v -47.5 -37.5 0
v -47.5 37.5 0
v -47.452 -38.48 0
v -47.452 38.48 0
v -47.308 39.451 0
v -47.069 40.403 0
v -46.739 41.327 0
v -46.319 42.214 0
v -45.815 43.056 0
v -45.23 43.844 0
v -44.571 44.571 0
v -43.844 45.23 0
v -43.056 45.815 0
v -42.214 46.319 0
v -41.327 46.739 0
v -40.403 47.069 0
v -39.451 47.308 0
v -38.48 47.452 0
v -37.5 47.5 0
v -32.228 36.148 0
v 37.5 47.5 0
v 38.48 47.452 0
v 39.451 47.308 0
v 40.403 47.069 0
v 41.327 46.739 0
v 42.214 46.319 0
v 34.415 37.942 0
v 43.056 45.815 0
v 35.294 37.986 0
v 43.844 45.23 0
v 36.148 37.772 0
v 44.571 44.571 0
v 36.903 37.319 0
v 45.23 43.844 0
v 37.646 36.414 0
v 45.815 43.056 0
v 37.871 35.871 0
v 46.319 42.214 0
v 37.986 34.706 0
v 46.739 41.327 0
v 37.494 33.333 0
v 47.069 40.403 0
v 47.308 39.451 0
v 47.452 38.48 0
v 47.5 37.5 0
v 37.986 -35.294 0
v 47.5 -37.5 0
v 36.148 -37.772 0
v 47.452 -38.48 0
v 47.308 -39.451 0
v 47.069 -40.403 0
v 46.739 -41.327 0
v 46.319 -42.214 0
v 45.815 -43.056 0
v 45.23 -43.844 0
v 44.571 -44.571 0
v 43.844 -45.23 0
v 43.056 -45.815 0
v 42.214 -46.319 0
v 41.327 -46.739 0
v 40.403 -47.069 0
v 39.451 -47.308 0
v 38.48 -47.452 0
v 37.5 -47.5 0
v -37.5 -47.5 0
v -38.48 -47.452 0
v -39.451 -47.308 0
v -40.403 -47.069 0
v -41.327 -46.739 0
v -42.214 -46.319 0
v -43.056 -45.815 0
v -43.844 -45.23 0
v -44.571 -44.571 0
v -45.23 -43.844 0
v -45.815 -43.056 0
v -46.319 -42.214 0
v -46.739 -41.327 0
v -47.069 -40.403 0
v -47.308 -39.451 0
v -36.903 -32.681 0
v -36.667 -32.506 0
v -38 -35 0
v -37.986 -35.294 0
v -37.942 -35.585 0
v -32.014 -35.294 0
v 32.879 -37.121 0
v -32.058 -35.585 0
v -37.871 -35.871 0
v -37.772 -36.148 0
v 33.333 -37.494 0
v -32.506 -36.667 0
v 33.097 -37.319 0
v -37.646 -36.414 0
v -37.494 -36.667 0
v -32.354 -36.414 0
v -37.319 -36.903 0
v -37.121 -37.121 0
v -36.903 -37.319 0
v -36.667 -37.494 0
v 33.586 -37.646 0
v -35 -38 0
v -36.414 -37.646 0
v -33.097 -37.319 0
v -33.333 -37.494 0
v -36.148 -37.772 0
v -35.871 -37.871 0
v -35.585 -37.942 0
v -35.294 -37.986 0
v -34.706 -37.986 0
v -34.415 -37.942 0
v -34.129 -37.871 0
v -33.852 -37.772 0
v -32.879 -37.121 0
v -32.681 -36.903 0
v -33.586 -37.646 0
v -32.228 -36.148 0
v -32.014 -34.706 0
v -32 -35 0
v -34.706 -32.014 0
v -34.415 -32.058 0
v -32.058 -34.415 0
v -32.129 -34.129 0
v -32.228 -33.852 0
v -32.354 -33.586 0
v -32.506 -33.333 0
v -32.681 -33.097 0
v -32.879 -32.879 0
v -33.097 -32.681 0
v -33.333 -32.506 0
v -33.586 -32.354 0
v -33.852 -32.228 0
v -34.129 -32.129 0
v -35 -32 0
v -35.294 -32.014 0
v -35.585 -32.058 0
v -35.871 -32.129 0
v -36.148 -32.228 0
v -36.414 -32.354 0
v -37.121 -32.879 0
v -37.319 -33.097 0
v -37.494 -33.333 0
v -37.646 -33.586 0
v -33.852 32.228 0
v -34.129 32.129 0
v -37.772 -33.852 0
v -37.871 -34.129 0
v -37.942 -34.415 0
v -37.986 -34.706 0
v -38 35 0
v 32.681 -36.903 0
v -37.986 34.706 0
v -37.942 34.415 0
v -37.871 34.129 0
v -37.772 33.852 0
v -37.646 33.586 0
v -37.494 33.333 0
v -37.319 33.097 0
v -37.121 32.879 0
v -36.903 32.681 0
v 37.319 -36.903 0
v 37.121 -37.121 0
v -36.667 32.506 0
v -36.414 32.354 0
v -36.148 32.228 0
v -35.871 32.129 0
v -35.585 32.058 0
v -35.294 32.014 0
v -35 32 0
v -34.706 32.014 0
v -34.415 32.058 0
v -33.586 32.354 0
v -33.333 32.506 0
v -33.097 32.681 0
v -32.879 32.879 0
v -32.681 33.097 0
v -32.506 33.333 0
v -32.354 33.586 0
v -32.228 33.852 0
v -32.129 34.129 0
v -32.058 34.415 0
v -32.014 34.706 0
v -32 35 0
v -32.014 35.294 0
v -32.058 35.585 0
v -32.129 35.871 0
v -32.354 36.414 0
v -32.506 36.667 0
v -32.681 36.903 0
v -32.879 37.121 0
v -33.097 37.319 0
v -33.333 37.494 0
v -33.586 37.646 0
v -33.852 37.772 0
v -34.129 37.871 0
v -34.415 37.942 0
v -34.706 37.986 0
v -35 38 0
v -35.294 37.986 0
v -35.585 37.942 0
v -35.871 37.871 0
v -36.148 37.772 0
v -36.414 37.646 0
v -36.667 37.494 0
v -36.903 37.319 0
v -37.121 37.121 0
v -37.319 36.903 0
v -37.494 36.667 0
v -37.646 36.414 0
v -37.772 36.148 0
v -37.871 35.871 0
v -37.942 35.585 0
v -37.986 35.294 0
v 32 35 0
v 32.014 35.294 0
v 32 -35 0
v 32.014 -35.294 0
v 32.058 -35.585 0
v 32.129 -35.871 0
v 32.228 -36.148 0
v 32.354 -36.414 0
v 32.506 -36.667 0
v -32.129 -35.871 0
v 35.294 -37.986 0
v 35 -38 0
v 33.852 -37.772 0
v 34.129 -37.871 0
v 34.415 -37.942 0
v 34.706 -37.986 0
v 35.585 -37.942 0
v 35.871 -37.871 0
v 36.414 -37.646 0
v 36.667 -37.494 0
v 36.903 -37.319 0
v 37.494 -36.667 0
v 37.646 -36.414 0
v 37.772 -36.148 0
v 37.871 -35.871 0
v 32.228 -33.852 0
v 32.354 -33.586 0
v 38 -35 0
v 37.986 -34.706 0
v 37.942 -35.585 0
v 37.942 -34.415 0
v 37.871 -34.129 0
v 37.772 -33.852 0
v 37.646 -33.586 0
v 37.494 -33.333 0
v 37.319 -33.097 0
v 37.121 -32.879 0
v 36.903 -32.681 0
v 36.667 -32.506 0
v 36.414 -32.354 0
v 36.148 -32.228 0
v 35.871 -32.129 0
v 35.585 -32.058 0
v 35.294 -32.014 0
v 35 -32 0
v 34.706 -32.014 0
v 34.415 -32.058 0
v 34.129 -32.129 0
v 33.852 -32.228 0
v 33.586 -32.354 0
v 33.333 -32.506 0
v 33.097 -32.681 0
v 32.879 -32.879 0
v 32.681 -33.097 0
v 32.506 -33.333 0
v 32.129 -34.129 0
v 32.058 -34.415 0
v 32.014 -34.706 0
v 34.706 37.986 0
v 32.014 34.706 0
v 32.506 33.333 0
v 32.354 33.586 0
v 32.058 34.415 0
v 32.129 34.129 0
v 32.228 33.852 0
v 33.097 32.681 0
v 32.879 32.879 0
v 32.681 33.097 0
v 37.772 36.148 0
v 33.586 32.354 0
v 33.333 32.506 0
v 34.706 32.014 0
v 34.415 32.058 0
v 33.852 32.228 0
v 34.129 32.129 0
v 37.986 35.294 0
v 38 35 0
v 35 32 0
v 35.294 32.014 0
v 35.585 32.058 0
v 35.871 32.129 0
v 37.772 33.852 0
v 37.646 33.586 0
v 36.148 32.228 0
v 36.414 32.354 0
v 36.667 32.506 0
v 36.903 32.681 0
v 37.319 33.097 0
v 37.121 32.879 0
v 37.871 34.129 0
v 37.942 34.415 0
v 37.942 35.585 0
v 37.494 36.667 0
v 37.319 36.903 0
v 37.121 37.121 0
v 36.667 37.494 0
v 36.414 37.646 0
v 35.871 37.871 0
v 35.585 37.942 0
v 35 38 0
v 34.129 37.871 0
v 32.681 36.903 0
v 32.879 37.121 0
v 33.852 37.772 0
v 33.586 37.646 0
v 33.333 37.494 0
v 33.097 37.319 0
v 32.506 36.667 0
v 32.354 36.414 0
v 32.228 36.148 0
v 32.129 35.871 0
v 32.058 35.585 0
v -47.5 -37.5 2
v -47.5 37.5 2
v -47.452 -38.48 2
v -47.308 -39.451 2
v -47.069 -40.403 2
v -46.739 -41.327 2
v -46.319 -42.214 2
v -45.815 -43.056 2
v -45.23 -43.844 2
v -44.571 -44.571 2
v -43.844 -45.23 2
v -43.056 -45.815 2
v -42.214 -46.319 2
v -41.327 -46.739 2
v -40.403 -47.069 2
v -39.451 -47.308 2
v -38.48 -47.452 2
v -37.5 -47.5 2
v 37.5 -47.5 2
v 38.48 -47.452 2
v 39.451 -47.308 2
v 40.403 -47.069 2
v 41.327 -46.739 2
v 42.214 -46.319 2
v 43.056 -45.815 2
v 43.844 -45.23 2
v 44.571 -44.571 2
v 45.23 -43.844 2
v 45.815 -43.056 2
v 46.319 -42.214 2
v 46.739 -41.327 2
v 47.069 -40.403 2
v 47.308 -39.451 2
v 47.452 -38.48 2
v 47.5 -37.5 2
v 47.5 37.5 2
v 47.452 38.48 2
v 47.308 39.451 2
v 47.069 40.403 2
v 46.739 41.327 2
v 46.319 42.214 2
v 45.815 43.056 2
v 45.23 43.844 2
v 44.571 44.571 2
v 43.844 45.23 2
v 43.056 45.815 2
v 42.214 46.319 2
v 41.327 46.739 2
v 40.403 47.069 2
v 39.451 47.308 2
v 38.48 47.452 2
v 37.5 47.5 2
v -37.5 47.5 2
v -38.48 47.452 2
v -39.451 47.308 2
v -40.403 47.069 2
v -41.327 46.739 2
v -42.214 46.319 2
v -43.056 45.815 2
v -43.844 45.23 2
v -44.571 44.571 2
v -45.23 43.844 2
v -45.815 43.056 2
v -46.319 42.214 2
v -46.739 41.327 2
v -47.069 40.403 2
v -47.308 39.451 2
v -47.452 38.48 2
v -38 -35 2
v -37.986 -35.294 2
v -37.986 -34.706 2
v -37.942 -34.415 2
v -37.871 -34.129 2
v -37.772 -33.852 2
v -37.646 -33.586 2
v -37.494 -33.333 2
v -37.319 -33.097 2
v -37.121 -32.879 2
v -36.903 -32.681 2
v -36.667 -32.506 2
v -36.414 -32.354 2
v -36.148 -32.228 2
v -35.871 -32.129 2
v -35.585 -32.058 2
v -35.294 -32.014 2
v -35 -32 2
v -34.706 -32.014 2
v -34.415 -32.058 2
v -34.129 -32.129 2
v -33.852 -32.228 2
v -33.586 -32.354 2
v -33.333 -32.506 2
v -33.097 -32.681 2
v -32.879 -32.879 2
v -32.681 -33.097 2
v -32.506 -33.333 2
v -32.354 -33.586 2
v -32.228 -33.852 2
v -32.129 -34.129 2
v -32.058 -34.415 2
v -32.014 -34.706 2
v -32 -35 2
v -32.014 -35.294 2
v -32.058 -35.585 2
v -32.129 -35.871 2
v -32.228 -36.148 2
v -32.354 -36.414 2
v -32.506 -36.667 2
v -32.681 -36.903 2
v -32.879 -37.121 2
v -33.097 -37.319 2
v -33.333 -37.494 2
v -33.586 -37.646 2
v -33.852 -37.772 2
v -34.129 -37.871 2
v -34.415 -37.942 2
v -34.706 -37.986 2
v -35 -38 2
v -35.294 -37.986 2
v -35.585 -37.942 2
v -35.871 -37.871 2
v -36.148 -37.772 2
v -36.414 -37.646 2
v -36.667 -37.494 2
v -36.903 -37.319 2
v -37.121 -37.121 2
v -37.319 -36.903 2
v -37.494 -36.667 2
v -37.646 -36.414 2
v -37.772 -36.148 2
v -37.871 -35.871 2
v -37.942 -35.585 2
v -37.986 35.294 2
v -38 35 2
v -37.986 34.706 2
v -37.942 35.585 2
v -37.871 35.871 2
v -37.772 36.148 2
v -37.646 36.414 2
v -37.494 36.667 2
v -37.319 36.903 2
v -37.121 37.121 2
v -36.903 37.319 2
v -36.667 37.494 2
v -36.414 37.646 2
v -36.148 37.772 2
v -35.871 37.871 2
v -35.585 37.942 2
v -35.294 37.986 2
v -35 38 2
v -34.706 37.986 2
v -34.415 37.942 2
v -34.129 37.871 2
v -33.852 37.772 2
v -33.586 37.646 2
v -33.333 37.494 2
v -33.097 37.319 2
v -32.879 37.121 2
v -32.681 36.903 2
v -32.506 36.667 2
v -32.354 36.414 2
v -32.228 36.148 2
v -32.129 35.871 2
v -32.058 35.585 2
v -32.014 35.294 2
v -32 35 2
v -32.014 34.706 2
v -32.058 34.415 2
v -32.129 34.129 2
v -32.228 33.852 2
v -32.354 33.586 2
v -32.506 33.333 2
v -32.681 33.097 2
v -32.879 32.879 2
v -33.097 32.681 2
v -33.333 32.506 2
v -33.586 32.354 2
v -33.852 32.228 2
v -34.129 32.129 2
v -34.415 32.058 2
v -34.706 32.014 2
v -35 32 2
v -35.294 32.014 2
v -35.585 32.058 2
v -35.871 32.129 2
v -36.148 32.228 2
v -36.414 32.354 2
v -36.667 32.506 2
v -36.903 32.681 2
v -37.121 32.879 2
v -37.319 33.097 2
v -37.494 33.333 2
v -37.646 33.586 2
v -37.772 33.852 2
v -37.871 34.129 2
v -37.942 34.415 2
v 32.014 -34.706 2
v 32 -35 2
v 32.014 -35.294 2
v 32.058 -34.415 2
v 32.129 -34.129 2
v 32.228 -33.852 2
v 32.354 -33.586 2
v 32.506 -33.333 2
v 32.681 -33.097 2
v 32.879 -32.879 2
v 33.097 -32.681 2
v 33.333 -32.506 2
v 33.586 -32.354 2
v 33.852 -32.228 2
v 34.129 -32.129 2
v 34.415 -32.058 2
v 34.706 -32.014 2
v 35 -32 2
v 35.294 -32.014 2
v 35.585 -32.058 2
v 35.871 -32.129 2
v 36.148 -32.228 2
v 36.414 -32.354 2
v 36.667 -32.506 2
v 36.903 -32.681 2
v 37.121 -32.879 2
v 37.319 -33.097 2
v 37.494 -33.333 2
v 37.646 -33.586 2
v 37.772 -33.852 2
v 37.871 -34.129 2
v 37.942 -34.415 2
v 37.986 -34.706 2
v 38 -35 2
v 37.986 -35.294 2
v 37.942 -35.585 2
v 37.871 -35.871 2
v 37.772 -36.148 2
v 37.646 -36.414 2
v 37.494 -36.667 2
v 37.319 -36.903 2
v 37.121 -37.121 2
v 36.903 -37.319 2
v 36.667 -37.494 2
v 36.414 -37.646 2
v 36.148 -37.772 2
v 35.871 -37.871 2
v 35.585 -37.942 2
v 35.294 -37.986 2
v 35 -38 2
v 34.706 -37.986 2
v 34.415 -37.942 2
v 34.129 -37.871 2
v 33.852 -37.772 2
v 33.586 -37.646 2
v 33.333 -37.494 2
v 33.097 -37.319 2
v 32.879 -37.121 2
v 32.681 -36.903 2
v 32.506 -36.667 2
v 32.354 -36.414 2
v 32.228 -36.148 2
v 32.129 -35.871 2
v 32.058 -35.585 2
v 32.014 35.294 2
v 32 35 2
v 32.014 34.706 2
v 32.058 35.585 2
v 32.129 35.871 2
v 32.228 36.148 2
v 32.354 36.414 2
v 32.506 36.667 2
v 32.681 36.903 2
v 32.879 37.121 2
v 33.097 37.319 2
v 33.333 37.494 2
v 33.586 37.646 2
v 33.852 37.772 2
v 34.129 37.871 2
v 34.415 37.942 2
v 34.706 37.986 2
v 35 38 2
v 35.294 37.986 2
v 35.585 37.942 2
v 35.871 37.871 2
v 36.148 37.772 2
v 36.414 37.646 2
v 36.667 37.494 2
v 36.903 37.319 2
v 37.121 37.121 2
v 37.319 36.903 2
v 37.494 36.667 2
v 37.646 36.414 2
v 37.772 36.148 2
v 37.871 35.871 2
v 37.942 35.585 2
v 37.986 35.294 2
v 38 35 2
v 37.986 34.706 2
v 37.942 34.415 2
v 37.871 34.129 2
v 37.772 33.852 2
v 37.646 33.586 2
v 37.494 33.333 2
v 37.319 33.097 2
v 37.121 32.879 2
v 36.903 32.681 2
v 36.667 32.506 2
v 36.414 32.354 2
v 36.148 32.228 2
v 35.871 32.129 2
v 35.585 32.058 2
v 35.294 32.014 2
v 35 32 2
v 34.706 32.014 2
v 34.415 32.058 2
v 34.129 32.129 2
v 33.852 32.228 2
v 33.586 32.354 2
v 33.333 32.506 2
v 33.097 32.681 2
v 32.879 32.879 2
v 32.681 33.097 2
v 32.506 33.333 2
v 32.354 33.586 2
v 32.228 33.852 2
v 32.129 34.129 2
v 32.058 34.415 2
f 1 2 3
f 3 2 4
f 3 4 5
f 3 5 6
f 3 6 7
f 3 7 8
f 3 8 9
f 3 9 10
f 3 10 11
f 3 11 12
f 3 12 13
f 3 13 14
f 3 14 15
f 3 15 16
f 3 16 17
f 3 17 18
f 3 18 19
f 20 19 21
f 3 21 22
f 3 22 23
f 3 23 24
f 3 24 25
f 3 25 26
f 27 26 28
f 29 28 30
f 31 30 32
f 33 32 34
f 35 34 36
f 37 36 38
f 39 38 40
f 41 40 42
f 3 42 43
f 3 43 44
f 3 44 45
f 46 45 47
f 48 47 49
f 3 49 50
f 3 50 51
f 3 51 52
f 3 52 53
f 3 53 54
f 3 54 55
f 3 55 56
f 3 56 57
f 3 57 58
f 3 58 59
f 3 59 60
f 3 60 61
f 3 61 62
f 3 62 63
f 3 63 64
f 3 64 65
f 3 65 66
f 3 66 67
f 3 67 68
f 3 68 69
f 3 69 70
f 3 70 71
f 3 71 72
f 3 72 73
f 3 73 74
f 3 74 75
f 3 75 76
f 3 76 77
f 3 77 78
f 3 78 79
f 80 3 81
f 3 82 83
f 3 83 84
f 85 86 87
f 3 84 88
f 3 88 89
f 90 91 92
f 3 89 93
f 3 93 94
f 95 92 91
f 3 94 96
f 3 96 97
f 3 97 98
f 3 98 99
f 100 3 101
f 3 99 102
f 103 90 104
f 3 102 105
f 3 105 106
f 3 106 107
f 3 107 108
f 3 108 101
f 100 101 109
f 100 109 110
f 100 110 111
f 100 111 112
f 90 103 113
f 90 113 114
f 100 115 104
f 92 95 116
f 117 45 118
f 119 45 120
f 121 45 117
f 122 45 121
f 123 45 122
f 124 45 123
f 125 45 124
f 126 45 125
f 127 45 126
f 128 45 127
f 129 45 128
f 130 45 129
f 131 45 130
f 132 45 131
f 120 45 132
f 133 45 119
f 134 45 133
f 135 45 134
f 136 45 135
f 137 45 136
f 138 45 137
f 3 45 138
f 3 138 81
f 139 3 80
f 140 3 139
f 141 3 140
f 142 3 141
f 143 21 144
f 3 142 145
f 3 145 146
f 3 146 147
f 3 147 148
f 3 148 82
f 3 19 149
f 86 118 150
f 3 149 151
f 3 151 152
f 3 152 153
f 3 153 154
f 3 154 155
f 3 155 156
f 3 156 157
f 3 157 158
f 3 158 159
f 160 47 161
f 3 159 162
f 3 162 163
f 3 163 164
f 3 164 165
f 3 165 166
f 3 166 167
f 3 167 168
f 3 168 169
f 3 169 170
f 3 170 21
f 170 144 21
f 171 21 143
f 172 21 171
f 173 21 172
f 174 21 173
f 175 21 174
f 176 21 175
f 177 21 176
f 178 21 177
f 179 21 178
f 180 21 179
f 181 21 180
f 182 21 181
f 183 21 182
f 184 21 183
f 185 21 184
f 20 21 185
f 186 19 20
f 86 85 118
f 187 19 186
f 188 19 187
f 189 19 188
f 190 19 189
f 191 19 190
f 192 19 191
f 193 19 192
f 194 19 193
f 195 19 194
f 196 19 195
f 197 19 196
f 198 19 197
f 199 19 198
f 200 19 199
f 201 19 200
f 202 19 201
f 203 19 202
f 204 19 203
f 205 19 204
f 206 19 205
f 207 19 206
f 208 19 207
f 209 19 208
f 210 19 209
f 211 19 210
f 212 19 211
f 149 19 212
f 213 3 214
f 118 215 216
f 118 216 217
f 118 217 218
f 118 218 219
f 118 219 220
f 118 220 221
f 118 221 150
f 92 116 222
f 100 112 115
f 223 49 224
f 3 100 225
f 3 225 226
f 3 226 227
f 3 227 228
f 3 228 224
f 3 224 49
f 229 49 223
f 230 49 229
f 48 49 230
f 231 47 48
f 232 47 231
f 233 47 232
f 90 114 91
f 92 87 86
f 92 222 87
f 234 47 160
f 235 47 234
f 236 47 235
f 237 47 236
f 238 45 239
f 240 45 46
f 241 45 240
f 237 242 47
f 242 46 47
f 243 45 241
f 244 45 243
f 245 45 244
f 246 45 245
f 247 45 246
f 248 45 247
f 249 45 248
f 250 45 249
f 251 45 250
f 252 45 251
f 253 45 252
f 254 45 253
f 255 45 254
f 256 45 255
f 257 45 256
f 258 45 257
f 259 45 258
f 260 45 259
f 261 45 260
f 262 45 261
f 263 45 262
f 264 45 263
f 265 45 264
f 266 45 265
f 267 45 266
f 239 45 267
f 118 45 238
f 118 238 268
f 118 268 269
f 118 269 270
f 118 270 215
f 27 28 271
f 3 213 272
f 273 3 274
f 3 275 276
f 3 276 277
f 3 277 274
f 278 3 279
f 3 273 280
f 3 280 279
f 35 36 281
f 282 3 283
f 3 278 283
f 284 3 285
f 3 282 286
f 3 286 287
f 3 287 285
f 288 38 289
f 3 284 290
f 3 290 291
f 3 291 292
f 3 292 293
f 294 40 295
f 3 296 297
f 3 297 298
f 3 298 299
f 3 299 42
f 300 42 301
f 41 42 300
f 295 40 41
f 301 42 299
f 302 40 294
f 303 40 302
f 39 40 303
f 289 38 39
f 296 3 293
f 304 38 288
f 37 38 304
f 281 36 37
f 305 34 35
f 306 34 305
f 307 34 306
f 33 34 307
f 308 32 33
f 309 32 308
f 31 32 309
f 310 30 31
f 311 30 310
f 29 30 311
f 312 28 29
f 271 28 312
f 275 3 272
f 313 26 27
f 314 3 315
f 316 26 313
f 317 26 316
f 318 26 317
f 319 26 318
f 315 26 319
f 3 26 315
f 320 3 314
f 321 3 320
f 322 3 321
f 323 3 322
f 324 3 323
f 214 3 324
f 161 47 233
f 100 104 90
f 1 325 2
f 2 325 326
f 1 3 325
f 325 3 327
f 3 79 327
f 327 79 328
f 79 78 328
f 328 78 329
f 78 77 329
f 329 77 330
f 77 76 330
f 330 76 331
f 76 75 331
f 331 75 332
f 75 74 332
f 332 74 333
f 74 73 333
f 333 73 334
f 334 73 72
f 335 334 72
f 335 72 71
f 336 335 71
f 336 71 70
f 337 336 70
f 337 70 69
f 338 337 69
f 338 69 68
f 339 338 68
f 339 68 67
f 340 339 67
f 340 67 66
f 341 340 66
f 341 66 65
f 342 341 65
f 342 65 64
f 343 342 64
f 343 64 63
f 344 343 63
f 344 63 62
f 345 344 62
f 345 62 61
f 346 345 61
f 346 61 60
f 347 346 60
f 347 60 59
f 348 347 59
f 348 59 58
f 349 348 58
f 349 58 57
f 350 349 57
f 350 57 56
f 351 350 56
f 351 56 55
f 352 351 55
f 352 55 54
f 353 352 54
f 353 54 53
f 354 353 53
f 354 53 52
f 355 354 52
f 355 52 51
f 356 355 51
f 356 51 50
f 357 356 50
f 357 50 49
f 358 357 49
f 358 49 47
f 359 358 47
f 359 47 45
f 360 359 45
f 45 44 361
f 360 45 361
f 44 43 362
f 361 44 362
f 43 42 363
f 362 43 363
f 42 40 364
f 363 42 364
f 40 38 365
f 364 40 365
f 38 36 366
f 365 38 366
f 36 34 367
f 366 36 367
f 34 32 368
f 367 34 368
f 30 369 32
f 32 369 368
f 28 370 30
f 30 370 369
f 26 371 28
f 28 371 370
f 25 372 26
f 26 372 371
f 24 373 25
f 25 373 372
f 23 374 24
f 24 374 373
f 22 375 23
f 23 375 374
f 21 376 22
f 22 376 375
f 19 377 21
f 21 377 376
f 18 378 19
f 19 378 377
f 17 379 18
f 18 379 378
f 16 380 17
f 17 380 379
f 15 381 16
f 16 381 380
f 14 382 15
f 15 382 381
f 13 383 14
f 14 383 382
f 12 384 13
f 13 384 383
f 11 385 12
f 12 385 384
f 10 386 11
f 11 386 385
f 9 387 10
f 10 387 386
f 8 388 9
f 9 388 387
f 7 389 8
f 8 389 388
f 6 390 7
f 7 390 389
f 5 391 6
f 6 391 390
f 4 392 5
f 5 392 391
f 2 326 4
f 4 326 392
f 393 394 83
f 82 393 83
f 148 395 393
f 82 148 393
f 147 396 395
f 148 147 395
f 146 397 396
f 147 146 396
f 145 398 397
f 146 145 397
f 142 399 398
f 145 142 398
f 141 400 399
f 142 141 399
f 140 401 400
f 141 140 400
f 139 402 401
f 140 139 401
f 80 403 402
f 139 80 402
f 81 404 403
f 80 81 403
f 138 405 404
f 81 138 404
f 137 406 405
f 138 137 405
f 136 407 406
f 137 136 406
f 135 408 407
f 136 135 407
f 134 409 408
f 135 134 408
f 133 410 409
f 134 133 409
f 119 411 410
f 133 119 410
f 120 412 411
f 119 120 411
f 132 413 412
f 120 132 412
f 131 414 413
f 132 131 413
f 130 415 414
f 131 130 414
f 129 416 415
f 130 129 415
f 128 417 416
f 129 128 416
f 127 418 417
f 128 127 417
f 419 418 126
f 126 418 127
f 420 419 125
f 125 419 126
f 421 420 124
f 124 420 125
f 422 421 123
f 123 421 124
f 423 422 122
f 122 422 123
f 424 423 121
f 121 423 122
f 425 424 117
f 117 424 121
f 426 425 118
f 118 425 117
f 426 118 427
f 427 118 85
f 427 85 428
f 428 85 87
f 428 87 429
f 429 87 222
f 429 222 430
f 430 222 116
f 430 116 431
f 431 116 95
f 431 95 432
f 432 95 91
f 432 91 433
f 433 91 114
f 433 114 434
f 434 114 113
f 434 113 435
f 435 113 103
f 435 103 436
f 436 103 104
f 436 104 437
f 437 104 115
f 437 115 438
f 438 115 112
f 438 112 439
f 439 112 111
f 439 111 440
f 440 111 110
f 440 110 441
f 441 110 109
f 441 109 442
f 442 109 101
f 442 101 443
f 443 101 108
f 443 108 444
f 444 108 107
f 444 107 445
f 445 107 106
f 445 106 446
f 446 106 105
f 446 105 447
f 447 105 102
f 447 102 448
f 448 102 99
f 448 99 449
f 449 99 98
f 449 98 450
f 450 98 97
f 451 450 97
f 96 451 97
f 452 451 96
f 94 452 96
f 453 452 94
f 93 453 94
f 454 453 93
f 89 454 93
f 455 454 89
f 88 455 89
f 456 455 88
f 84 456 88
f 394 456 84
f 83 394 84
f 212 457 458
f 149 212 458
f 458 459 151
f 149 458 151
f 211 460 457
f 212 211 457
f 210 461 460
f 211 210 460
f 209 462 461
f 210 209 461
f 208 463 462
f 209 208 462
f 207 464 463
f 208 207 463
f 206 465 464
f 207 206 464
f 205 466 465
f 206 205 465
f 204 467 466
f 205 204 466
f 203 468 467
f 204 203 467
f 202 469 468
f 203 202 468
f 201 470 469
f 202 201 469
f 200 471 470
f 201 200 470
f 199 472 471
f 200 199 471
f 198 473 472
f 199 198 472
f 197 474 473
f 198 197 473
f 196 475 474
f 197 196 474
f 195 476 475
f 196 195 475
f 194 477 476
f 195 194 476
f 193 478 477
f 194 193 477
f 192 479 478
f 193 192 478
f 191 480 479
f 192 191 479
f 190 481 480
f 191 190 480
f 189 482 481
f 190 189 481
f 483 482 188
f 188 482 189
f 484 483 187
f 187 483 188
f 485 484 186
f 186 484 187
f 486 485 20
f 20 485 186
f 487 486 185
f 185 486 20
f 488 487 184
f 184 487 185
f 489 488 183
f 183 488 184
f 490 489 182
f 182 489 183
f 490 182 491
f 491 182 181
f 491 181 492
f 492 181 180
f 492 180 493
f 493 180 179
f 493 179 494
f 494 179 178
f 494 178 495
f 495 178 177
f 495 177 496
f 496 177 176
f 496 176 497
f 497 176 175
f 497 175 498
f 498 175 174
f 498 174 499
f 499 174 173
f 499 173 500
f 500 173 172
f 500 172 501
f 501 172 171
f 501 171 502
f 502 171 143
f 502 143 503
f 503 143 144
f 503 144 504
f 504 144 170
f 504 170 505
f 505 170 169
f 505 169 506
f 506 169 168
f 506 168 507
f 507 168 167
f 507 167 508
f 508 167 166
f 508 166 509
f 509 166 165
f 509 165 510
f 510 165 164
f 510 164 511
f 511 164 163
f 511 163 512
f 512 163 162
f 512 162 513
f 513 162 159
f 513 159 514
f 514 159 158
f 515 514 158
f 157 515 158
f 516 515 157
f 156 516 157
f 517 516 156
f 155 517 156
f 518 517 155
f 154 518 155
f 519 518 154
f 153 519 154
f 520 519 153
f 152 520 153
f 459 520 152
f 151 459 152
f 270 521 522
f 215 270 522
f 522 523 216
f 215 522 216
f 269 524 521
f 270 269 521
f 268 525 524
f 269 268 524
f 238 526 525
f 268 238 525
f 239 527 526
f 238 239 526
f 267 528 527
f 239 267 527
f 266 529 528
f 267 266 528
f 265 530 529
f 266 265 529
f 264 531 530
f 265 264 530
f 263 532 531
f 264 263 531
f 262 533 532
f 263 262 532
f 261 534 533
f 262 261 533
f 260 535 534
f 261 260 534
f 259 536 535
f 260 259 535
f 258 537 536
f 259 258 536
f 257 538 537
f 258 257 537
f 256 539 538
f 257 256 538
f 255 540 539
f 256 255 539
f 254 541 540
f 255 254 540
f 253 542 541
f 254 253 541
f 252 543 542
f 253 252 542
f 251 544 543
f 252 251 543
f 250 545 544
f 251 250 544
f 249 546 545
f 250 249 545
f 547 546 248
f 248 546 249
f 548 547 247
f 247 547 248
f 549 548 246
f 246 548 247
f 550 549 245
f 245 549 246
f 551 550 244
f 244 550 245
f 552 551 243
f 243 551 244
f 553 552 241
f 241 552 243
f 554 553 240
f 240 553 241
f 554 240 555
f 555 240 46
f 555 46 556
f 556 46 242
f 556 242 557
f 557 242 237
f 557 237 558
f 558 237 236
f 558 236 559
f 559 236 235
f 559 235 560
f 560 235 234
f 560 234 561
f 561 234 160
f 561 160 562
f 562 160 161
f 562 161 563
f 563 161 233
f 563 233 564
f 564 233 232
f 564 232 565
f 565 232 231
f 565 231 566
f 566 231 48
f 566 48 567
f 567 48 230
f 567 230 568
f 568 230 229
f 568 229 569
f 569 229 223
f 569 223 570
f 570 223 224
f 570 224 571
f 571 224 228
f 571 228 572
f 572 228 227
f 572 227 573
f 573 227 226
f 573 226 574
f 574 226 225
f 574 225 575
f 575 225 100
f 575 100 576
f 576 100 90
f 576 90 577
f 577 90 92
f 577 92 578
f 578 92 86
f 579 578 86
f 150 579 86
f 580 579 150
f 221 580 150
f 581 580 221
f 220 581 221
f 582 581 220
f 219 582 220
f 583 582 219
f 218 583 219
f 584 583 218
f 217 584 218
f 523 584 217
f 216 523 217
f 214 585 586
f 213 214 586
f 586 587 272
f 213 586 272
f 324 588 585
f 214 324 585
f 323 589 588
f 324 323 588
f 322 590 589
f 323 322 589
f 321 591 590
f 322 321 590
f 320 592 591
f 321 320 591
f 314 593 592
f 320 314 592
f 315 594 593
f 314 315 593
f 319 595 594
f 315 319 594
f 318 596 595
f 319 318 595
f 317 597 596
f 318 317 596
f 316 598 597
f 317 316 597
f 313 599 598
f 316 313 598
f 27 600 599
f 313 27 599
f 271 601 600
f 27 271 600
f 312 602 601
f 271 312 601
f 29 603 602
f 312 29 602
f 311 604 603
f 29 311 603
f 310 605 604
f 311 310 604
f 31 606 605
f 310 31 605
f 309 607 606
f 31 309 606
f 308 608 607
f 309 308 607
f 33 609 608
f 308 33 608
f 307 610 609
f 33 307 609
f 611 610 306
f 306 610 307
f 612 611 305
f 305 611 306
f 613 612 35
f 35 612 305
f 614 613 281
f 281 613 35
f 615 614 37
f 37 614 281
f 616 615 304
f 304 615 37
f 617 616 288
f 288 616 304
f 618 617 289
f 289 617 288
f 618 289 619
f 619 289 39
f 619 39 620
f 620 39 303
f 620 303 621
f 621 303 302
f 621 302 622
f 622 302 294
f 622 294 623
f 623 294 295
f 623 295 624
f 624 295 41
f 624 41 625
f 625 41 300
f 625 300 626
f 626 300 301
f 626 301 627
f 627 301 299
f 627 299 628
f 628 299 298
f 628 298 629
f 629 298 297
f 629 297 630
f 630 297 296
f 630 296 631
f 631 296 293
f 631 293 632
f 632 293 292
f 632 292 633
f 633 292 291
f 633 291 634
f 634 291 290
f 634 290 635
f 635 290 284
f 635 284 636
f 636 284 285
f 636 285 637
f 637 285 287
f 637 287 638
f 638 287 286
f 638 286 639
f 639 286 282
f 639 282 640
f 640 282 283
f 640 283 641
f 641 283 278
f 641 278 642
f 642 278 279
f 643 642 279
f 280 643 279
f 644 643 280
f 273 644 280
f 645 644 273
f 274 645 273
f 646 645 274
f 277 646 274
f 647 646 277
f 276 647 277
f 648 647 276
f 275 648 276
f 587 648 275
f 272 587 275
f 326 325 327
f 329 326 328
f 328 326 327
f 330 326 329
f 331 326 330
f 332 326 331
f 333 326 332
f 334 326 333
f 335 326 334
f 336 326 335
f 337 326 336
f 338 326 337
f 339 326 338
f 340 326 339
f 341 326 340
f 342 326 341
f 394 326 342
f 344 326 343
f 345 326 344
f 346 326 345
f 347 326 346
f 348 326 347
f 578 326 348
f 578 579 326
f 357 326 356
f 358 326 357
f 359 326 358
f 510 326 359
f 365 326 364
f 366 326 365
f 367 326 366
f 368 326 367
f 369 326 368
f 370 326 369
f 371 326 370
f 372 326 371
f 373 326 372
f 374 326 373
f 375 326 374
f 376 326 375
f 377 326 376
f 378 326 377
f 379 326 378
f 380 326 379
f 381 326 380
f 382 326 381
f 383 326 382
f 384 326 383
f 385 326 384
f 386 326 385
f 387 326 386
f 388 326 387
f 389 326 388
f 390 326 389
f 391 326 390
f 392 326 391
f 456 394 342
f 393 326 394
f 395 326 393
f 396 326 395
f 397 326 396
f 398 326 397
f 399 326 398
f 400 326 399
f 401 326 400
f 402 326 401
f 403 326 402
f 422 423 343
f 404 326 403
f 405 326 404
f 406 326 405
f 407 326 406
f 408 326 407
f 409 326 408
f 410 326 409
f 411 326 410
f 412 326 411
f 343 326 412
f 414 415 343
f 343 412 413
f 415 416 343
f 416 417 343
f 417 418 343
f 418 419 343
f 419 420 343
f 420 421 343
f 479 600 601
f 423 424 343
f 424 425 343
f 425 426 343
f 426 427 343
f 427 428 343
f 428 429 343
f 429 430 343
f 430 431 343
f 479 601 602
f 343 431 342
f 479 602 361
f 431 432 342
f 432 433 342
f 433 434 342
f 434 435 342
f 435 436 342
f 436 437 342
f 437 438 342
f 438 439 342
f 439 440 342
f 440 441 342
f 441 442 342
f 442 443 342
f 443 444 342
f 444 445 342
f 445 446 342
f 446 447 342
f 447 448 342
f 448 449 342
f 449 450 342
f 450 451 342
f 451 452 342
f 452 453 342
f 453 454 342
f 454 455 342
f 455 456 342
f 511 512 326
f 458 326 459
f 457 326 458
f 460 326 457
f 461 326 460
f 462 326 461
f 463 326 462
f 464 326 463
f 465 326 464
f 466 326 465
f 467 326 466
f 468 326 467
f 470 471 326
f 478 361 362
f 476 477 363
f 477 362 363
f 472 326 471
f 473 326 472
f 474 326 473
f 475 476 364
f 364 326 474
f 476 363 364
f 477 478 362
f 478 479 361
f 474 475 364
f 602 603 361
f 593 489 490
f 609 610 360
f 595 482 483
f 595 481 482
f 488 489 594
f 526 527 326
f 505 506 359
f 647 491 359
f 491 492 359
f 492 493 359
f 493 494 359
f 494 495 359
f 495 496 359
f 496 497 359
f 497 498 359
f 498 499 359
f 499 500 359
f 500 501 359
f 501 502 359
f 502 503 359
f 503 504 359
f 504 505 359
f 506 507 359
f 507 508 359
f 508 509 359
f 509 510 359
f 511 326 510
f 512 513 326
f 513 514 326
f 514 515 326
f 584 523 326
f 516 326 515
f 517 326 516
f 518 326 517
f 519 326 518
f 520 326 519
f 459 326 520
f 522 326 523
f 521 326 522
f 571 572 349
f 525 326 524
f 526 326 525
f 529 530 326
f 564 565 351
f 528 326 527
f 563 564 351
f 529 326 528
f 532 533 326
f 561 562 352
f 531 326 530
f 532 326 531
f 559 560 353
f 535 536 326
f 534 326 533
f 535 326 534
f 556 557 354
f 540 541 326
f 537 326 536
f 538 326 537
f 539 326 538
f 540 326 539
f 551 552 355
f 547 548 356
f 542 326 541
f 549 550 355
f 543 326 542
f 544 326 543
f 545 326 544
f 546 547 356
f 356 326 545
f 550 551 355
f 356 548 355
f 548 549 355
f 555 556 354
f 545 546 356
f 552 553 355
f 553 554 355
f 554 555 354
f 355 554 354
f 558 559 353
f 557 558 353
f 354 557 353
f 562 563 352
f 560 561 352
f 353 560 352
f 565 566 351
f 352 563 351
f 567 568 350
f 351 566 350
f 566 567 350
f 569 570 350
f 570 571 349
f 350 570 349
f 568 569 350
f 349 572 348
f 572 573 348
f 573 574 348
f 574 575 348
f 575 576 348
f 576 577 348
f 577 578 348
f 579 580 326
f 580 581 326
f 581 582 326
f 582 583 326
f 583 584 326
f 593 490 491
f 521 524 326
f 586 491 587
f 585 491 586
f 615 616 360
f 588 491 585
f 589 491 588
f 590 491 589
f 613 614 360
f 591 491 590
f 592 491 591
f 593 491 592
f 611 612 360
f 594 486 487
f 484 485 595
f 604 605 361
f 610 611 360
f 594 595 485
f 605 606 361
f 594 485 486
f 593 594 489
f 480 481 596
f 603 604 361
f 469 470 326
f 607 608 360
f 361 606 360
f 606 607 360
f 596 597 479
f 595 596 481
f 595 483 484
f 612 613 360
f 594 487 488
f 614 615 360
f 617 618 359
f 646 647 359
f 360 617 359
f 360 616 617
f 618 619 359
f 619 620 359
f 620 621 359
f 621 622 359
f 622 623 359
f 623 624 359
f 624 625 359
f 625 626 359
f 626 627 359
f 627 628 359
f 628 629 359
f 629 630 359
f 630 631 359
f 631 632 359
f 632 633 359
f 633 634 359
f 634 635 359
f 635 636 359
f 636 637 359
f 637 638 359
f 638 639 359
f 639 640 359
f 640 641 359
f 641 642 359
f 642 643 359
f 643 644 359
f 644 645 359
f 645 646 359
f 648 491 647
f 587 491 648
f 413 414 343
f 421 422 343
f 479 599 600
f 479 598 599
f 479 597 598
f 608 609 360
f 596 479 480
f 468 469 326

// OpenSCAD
module CpuFanCover(coverSize = 95, thickness = 2, holeSpacing = 35, holeRadius = 3, cornerRadius = 10, fn = 64)
{
    cornerRoundingPos = coverSize/2 - cornerRadius;

    difference()
    {
        // Main shape with rounded corners
        hull()
        {
            translate([cornerRoundingPos, cornerRoundingPos, 0])
            cylinder(r = cornerRadius, h = thickness, $fn = fn);

            translate([-cornerRoundingPos, cornerRoundingPos, 0])
            cylinder(r = cornerRadius, h = thickness, $fn = fn);

            translate([cornerRoundingPos, -cornerRoundingPos, 0])
            cylinder(r = cornerRadius, h = thickness, $fn = fn);

            translate([-cornerRoundingPos, -cornerRoundingPos, 0])
            cylinder(r = cornerRadius, h = thickness, $fn = fn);
        }

        // Screw holes
        translate([holeSpacing, holeSpacing, 0])
        cylinder(h = thickness, r = holeRadius, $fn = fn);

        translate([-holeSpacing, holeSpacing, 0])
        cylinder(h = thickness, r = holeRadius, $fn = fn);

        translate([holeSpacing, -holeSpacing, 0])
        cylinder(h = thickness, r = holeRadius, $fn = fn);

        translate([-holeSpacing, -holeSpacing, 0])
        cylinder(h = thickness, r = holeRadius, $fn = fn);
    }
}

CpuFanCover();
